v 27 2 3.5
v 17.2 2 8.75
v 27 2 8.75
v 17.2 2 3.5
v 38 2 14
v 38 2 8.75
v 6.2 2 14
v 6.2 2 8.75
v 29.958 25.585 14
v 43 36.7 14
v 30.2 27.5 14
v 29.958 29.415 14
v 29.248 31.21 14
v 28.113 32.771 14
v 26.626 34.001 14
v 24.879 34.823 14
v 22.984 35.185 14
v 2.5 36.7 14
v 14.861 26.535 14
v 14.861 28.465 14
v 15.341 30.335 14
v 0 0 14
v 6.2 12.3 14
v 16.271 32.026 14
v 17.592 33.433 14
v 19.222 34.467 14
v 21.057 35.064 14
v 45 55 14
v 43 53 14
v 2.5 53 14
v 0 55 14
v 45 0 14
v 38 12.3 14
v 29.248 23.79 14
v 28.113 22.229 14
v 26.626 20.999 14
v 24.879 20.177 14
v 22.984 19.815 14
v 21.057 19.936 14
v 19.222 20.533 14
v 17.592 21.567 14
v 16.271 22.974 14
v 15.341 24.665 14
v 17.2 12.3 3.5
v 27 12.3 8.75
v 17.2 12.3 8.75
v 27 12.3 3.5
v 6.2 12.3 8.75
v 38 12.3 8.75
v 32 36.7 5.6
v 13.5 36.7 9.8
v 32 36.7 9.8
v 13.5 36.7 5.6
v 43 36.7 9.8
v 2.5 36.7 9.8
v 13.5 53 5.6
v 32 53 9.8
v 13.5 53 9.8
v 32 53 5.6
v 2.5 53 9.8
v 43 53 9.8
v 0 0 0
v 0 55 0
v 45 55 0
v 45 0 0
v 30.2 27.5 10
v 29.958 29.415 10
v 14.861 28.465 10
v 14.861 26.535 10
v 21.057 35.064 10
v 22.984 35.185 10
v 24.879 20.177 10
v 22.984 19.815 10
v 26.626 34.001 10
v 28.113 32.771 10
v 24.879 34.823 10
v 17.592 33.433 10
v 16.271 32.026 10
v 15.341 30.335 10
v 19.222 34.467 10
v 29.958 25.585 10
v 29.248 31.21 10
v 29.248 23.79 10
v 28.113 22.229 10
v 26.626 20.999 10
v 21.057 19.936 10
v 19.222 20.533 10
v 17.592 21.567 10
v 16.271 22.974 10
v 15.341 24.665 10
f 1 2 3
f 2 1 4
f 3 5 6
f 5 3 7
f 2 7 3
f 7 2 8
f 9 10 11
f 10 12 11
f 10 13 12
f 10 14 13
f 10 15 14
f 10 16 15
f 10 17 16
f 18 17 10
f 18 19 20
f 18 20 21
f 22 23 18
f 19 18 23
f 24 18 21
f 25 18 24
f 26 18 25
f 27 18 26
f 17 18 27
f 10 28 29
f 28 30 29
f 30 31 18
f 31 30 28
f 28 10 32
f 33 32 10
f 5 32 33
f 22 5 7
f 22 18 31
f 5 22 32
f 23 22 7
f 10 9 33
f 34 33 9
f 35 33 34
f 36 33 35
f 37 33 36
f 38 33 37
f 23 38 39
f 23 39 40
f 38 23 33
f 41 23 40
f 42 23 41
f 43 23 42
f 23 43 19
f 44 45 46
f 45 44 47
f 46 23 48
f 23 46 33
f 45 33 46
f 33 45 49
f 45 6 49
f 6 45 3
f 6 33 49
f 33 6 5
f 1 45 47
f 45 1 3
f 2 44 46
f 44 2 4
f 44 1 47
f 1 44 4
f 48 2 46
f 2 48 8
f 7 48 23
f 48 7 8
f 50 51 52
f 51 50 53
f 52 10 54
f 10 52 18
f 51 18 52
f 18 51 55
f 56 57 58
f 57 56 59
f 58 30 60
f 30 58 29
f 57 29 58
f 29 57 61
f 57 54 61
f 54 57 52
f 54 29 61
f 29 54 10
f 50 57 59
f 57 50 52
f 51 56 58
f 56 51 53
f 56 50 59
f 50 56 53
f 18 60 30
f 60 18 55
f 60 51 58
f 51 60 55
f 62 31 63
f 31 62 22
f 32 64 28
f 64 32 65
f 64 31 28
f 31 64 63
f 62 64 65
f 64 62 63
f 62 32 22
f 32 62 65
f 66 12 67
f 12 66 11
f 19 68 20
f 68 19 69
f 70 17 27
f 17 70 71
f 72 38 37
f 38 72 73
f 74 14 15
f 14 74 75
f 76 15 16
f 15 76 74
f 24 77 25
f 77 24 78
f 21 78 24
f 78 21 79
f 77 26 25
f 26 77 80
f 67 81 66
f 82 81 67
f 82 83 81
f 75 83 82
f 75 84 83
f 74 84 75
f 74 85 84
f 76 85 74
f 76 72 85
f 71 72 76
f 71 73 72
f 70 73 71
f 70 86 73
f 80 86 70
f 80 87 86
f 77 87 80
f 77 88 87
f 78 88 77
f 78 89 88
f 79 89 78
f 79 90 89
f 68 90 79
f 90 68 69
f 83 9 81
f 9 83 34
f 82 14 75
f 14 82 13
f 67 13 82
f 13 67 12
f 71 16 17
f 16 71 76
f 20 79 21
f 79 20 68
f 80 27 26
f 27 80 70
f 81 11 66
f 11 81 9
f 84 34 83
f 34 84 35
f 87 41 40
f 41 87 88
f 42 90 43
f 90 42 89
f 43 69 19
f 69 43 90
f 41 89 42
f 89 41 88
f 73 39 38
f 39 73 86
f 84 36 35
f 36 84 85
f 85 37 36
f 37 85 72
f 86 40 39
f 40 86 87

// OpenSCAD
length = 45;
width = 55;
height = 14;
magnetPadding = 15;
magnetBaseInnerDiameter = 15.4;
magnetHeight = 4.0;

plasticCubeSide = 9.8;
plasticCubeBoxHeight = 10 + .5;
plasticCubeBoxWidth = plasticCubeSide;

wallThickness = 2;

fingerNotchSize = 11;


plasticCubeCount = 1;
plasticCubeBoxLength = plasticCubeSide * plasticCubeCount + .5;

meepleBoxHeight = 7.9 + .5;
meepleBoxWidth = 18 + .5;
meepleBoxLength = 15.8 + .5;

    difference(){
        cube([length, width, height]);  
        
        rotate([0,0,90])
            translate([wallThickness,-38, 0])
                PlasticCubeBox();
        //magnet
        translate([
            length/2,
            width/2,
            height - magnetHeight])
            cylinder(magnetHeight, d=magnetBaseInnerDiameter);
        
        translate([length - wallThickness, width - (wallThickness + meepleBoxLength), 0])
            rotate([0,0,90])
            MeepleBox();

    }
    


module PlasticCubeBox()
{
    translate([0, 0, height - (plasticCubeBoxHeight/2)])
        cube([plasticCubeBoxLength, fingerNotchSize, plasticCubeBoxHeight / 2]);
    translate([0, 0 + fingerNotchSize, height - plasticCubeBoxHeight])
        cube([plasticCubeBoxLength, plasticCubeBoxWidth, plasticCubeBoxHeight]);
    translate([0, 0 + fingerNotchSize + plasticCubeBoxWidth, height - (plasticCubeBoxHeight/2)])
        cube([plasticCubeBoxLength, fingerNotchSize, plasticCubeBoxHeight / 2]);
}

module MeepleBox()
{
    translate([0, 0, height - (meepleBoxHeight/2)])
        cube([meepleBoxLength, fingerNotchSize, meepleBoxHeight / 2]);
    translate([0, 0 + fingerNotchSize, height - meepleBoxHeight])
        cube([meepleBoxLength, meepleBoxWidth, meepleBoxHeight]);
    translate([0, 0 + fingerNotchSize + meepleBoxWidth, height - (meepleBoxHeight/2)])
        cube([meepleBoxLength, fingerNotchSize, meepleBoxHeight / 2]);
}
